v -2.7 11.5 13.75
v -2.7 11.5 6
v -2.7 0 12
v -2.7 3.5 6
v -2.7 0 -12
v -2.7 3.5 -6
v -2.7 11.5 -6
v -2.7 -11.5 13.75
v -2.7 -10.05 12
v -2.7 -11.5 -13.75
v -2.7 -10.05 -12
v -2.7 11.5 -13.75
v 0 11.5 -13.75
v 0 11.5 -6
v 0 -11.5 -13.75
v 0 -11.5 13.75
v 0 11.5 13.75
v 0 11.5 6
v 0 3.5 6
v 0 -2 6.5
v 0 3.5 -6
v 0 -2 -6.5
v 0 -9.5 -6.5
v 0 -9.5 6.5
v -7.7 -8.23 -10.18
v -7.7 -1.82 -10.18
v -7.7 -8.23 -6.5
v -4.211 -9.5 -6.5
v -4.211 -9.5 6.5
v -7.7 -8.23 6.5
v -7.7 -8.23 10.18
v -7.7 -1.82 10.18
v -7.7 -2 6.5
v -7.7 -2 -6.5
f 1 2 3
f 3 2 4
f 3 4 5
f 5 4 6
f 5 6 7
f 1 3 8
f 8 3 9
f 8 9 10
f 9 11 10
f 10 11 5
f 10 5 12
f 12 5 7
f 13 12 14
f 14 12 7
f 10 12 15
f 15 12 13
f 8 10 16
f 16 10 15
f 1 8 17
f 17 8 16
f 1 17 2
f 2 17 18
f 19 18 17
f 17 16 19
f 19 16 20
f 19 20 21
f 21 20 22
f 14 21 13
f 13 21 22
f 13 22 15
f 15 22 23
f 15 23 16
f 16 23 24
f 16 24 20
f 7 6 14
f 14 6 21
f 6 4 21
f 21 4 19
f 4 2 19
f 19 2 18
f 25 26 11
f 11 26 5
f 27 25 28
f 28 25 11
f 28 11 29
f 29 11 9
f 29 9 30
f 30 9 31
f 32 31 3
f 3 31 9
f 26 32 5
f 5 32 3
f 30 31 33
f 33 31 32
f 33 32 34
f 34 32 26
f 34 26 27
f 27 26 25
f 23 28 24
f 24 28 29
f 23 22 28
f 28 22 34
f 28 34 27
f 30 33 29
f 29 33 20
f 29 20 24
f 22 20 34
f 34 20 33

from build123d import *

# Parameters (mm, degrees)
SKETCH1_W           = 27.5
SKETCH1_H           = 23
BOSS_EXTRUDE1_DEPTH = 2.7
SKETCH2_W           = 12
SKETCH2_H           = 8
CUT_EXTRUDE1_DEPTH  = 3.7
SKETCH4_W           = 24
SKETCH4_H           = 10.05
BOSS_EXTRUDE4_DEPTH = 5
BOSS_EXTRUDE4_TAPER = 20
SKETCH3_W           = 13
SKETCH3_H           = 7.5
CUT_EXTRUDE3_DEPTH  = 7.7


with BuildPart() as part:
    # Sketch1 → Boss-Extrude1 (new body)
    with BuildSketch(Plane(origin=(0, 0, 0), x_dir=(0, 0, -1), z_dir=(1, 0, 0))):
        Rectangle(SKETCH1_W, SKETCH1_H)
    extrude(amount=-BOSS_EXTRUDE1_DEPTH)

    # Sketch2 → Cut-Extrude1 (cut, through all)
    with BuildSketch(Plane(origin=(0, 0, 0), x_dir=(0, 0, -1), z_dir=(1, 0, 0))):
        with Locations((0, 7.5)):
            Rectangle(SKETCH2_W, SKETCH2_H)
    extrude(amount=-CUT_EXTRUDE1_DEPTH, mode=Mode.SUBTRACT)

    # Sketch4 → Boss-Extrude4 (add)
    with BuildSketch(Plane.ZY.offset(2.7)):
        with Locations((0, -5.025)):
            Rectangle(SKETCH4_W, SKETCH4_H)
    extrude(amount=BOSS_EXTRUDE4_DEPTH, taper=BOSS_EXTRUDE4_TAPER)

    # Sketch3 → Cut-Extrude3 (cut)
    with BuildSketch(Plane(origin=(0, 0, 0), x_dir=(0, 0, -1), z_dir=(1, 0, 0))):
        with Locations((0, -5.75)):
            Rectangle(SKETCH3_W, SKETCH3_H)
    extrude(amount=-CUT_EXTRUDE3_DEPTH, mode=Mode.SUBTRACT)


solid = part.part
